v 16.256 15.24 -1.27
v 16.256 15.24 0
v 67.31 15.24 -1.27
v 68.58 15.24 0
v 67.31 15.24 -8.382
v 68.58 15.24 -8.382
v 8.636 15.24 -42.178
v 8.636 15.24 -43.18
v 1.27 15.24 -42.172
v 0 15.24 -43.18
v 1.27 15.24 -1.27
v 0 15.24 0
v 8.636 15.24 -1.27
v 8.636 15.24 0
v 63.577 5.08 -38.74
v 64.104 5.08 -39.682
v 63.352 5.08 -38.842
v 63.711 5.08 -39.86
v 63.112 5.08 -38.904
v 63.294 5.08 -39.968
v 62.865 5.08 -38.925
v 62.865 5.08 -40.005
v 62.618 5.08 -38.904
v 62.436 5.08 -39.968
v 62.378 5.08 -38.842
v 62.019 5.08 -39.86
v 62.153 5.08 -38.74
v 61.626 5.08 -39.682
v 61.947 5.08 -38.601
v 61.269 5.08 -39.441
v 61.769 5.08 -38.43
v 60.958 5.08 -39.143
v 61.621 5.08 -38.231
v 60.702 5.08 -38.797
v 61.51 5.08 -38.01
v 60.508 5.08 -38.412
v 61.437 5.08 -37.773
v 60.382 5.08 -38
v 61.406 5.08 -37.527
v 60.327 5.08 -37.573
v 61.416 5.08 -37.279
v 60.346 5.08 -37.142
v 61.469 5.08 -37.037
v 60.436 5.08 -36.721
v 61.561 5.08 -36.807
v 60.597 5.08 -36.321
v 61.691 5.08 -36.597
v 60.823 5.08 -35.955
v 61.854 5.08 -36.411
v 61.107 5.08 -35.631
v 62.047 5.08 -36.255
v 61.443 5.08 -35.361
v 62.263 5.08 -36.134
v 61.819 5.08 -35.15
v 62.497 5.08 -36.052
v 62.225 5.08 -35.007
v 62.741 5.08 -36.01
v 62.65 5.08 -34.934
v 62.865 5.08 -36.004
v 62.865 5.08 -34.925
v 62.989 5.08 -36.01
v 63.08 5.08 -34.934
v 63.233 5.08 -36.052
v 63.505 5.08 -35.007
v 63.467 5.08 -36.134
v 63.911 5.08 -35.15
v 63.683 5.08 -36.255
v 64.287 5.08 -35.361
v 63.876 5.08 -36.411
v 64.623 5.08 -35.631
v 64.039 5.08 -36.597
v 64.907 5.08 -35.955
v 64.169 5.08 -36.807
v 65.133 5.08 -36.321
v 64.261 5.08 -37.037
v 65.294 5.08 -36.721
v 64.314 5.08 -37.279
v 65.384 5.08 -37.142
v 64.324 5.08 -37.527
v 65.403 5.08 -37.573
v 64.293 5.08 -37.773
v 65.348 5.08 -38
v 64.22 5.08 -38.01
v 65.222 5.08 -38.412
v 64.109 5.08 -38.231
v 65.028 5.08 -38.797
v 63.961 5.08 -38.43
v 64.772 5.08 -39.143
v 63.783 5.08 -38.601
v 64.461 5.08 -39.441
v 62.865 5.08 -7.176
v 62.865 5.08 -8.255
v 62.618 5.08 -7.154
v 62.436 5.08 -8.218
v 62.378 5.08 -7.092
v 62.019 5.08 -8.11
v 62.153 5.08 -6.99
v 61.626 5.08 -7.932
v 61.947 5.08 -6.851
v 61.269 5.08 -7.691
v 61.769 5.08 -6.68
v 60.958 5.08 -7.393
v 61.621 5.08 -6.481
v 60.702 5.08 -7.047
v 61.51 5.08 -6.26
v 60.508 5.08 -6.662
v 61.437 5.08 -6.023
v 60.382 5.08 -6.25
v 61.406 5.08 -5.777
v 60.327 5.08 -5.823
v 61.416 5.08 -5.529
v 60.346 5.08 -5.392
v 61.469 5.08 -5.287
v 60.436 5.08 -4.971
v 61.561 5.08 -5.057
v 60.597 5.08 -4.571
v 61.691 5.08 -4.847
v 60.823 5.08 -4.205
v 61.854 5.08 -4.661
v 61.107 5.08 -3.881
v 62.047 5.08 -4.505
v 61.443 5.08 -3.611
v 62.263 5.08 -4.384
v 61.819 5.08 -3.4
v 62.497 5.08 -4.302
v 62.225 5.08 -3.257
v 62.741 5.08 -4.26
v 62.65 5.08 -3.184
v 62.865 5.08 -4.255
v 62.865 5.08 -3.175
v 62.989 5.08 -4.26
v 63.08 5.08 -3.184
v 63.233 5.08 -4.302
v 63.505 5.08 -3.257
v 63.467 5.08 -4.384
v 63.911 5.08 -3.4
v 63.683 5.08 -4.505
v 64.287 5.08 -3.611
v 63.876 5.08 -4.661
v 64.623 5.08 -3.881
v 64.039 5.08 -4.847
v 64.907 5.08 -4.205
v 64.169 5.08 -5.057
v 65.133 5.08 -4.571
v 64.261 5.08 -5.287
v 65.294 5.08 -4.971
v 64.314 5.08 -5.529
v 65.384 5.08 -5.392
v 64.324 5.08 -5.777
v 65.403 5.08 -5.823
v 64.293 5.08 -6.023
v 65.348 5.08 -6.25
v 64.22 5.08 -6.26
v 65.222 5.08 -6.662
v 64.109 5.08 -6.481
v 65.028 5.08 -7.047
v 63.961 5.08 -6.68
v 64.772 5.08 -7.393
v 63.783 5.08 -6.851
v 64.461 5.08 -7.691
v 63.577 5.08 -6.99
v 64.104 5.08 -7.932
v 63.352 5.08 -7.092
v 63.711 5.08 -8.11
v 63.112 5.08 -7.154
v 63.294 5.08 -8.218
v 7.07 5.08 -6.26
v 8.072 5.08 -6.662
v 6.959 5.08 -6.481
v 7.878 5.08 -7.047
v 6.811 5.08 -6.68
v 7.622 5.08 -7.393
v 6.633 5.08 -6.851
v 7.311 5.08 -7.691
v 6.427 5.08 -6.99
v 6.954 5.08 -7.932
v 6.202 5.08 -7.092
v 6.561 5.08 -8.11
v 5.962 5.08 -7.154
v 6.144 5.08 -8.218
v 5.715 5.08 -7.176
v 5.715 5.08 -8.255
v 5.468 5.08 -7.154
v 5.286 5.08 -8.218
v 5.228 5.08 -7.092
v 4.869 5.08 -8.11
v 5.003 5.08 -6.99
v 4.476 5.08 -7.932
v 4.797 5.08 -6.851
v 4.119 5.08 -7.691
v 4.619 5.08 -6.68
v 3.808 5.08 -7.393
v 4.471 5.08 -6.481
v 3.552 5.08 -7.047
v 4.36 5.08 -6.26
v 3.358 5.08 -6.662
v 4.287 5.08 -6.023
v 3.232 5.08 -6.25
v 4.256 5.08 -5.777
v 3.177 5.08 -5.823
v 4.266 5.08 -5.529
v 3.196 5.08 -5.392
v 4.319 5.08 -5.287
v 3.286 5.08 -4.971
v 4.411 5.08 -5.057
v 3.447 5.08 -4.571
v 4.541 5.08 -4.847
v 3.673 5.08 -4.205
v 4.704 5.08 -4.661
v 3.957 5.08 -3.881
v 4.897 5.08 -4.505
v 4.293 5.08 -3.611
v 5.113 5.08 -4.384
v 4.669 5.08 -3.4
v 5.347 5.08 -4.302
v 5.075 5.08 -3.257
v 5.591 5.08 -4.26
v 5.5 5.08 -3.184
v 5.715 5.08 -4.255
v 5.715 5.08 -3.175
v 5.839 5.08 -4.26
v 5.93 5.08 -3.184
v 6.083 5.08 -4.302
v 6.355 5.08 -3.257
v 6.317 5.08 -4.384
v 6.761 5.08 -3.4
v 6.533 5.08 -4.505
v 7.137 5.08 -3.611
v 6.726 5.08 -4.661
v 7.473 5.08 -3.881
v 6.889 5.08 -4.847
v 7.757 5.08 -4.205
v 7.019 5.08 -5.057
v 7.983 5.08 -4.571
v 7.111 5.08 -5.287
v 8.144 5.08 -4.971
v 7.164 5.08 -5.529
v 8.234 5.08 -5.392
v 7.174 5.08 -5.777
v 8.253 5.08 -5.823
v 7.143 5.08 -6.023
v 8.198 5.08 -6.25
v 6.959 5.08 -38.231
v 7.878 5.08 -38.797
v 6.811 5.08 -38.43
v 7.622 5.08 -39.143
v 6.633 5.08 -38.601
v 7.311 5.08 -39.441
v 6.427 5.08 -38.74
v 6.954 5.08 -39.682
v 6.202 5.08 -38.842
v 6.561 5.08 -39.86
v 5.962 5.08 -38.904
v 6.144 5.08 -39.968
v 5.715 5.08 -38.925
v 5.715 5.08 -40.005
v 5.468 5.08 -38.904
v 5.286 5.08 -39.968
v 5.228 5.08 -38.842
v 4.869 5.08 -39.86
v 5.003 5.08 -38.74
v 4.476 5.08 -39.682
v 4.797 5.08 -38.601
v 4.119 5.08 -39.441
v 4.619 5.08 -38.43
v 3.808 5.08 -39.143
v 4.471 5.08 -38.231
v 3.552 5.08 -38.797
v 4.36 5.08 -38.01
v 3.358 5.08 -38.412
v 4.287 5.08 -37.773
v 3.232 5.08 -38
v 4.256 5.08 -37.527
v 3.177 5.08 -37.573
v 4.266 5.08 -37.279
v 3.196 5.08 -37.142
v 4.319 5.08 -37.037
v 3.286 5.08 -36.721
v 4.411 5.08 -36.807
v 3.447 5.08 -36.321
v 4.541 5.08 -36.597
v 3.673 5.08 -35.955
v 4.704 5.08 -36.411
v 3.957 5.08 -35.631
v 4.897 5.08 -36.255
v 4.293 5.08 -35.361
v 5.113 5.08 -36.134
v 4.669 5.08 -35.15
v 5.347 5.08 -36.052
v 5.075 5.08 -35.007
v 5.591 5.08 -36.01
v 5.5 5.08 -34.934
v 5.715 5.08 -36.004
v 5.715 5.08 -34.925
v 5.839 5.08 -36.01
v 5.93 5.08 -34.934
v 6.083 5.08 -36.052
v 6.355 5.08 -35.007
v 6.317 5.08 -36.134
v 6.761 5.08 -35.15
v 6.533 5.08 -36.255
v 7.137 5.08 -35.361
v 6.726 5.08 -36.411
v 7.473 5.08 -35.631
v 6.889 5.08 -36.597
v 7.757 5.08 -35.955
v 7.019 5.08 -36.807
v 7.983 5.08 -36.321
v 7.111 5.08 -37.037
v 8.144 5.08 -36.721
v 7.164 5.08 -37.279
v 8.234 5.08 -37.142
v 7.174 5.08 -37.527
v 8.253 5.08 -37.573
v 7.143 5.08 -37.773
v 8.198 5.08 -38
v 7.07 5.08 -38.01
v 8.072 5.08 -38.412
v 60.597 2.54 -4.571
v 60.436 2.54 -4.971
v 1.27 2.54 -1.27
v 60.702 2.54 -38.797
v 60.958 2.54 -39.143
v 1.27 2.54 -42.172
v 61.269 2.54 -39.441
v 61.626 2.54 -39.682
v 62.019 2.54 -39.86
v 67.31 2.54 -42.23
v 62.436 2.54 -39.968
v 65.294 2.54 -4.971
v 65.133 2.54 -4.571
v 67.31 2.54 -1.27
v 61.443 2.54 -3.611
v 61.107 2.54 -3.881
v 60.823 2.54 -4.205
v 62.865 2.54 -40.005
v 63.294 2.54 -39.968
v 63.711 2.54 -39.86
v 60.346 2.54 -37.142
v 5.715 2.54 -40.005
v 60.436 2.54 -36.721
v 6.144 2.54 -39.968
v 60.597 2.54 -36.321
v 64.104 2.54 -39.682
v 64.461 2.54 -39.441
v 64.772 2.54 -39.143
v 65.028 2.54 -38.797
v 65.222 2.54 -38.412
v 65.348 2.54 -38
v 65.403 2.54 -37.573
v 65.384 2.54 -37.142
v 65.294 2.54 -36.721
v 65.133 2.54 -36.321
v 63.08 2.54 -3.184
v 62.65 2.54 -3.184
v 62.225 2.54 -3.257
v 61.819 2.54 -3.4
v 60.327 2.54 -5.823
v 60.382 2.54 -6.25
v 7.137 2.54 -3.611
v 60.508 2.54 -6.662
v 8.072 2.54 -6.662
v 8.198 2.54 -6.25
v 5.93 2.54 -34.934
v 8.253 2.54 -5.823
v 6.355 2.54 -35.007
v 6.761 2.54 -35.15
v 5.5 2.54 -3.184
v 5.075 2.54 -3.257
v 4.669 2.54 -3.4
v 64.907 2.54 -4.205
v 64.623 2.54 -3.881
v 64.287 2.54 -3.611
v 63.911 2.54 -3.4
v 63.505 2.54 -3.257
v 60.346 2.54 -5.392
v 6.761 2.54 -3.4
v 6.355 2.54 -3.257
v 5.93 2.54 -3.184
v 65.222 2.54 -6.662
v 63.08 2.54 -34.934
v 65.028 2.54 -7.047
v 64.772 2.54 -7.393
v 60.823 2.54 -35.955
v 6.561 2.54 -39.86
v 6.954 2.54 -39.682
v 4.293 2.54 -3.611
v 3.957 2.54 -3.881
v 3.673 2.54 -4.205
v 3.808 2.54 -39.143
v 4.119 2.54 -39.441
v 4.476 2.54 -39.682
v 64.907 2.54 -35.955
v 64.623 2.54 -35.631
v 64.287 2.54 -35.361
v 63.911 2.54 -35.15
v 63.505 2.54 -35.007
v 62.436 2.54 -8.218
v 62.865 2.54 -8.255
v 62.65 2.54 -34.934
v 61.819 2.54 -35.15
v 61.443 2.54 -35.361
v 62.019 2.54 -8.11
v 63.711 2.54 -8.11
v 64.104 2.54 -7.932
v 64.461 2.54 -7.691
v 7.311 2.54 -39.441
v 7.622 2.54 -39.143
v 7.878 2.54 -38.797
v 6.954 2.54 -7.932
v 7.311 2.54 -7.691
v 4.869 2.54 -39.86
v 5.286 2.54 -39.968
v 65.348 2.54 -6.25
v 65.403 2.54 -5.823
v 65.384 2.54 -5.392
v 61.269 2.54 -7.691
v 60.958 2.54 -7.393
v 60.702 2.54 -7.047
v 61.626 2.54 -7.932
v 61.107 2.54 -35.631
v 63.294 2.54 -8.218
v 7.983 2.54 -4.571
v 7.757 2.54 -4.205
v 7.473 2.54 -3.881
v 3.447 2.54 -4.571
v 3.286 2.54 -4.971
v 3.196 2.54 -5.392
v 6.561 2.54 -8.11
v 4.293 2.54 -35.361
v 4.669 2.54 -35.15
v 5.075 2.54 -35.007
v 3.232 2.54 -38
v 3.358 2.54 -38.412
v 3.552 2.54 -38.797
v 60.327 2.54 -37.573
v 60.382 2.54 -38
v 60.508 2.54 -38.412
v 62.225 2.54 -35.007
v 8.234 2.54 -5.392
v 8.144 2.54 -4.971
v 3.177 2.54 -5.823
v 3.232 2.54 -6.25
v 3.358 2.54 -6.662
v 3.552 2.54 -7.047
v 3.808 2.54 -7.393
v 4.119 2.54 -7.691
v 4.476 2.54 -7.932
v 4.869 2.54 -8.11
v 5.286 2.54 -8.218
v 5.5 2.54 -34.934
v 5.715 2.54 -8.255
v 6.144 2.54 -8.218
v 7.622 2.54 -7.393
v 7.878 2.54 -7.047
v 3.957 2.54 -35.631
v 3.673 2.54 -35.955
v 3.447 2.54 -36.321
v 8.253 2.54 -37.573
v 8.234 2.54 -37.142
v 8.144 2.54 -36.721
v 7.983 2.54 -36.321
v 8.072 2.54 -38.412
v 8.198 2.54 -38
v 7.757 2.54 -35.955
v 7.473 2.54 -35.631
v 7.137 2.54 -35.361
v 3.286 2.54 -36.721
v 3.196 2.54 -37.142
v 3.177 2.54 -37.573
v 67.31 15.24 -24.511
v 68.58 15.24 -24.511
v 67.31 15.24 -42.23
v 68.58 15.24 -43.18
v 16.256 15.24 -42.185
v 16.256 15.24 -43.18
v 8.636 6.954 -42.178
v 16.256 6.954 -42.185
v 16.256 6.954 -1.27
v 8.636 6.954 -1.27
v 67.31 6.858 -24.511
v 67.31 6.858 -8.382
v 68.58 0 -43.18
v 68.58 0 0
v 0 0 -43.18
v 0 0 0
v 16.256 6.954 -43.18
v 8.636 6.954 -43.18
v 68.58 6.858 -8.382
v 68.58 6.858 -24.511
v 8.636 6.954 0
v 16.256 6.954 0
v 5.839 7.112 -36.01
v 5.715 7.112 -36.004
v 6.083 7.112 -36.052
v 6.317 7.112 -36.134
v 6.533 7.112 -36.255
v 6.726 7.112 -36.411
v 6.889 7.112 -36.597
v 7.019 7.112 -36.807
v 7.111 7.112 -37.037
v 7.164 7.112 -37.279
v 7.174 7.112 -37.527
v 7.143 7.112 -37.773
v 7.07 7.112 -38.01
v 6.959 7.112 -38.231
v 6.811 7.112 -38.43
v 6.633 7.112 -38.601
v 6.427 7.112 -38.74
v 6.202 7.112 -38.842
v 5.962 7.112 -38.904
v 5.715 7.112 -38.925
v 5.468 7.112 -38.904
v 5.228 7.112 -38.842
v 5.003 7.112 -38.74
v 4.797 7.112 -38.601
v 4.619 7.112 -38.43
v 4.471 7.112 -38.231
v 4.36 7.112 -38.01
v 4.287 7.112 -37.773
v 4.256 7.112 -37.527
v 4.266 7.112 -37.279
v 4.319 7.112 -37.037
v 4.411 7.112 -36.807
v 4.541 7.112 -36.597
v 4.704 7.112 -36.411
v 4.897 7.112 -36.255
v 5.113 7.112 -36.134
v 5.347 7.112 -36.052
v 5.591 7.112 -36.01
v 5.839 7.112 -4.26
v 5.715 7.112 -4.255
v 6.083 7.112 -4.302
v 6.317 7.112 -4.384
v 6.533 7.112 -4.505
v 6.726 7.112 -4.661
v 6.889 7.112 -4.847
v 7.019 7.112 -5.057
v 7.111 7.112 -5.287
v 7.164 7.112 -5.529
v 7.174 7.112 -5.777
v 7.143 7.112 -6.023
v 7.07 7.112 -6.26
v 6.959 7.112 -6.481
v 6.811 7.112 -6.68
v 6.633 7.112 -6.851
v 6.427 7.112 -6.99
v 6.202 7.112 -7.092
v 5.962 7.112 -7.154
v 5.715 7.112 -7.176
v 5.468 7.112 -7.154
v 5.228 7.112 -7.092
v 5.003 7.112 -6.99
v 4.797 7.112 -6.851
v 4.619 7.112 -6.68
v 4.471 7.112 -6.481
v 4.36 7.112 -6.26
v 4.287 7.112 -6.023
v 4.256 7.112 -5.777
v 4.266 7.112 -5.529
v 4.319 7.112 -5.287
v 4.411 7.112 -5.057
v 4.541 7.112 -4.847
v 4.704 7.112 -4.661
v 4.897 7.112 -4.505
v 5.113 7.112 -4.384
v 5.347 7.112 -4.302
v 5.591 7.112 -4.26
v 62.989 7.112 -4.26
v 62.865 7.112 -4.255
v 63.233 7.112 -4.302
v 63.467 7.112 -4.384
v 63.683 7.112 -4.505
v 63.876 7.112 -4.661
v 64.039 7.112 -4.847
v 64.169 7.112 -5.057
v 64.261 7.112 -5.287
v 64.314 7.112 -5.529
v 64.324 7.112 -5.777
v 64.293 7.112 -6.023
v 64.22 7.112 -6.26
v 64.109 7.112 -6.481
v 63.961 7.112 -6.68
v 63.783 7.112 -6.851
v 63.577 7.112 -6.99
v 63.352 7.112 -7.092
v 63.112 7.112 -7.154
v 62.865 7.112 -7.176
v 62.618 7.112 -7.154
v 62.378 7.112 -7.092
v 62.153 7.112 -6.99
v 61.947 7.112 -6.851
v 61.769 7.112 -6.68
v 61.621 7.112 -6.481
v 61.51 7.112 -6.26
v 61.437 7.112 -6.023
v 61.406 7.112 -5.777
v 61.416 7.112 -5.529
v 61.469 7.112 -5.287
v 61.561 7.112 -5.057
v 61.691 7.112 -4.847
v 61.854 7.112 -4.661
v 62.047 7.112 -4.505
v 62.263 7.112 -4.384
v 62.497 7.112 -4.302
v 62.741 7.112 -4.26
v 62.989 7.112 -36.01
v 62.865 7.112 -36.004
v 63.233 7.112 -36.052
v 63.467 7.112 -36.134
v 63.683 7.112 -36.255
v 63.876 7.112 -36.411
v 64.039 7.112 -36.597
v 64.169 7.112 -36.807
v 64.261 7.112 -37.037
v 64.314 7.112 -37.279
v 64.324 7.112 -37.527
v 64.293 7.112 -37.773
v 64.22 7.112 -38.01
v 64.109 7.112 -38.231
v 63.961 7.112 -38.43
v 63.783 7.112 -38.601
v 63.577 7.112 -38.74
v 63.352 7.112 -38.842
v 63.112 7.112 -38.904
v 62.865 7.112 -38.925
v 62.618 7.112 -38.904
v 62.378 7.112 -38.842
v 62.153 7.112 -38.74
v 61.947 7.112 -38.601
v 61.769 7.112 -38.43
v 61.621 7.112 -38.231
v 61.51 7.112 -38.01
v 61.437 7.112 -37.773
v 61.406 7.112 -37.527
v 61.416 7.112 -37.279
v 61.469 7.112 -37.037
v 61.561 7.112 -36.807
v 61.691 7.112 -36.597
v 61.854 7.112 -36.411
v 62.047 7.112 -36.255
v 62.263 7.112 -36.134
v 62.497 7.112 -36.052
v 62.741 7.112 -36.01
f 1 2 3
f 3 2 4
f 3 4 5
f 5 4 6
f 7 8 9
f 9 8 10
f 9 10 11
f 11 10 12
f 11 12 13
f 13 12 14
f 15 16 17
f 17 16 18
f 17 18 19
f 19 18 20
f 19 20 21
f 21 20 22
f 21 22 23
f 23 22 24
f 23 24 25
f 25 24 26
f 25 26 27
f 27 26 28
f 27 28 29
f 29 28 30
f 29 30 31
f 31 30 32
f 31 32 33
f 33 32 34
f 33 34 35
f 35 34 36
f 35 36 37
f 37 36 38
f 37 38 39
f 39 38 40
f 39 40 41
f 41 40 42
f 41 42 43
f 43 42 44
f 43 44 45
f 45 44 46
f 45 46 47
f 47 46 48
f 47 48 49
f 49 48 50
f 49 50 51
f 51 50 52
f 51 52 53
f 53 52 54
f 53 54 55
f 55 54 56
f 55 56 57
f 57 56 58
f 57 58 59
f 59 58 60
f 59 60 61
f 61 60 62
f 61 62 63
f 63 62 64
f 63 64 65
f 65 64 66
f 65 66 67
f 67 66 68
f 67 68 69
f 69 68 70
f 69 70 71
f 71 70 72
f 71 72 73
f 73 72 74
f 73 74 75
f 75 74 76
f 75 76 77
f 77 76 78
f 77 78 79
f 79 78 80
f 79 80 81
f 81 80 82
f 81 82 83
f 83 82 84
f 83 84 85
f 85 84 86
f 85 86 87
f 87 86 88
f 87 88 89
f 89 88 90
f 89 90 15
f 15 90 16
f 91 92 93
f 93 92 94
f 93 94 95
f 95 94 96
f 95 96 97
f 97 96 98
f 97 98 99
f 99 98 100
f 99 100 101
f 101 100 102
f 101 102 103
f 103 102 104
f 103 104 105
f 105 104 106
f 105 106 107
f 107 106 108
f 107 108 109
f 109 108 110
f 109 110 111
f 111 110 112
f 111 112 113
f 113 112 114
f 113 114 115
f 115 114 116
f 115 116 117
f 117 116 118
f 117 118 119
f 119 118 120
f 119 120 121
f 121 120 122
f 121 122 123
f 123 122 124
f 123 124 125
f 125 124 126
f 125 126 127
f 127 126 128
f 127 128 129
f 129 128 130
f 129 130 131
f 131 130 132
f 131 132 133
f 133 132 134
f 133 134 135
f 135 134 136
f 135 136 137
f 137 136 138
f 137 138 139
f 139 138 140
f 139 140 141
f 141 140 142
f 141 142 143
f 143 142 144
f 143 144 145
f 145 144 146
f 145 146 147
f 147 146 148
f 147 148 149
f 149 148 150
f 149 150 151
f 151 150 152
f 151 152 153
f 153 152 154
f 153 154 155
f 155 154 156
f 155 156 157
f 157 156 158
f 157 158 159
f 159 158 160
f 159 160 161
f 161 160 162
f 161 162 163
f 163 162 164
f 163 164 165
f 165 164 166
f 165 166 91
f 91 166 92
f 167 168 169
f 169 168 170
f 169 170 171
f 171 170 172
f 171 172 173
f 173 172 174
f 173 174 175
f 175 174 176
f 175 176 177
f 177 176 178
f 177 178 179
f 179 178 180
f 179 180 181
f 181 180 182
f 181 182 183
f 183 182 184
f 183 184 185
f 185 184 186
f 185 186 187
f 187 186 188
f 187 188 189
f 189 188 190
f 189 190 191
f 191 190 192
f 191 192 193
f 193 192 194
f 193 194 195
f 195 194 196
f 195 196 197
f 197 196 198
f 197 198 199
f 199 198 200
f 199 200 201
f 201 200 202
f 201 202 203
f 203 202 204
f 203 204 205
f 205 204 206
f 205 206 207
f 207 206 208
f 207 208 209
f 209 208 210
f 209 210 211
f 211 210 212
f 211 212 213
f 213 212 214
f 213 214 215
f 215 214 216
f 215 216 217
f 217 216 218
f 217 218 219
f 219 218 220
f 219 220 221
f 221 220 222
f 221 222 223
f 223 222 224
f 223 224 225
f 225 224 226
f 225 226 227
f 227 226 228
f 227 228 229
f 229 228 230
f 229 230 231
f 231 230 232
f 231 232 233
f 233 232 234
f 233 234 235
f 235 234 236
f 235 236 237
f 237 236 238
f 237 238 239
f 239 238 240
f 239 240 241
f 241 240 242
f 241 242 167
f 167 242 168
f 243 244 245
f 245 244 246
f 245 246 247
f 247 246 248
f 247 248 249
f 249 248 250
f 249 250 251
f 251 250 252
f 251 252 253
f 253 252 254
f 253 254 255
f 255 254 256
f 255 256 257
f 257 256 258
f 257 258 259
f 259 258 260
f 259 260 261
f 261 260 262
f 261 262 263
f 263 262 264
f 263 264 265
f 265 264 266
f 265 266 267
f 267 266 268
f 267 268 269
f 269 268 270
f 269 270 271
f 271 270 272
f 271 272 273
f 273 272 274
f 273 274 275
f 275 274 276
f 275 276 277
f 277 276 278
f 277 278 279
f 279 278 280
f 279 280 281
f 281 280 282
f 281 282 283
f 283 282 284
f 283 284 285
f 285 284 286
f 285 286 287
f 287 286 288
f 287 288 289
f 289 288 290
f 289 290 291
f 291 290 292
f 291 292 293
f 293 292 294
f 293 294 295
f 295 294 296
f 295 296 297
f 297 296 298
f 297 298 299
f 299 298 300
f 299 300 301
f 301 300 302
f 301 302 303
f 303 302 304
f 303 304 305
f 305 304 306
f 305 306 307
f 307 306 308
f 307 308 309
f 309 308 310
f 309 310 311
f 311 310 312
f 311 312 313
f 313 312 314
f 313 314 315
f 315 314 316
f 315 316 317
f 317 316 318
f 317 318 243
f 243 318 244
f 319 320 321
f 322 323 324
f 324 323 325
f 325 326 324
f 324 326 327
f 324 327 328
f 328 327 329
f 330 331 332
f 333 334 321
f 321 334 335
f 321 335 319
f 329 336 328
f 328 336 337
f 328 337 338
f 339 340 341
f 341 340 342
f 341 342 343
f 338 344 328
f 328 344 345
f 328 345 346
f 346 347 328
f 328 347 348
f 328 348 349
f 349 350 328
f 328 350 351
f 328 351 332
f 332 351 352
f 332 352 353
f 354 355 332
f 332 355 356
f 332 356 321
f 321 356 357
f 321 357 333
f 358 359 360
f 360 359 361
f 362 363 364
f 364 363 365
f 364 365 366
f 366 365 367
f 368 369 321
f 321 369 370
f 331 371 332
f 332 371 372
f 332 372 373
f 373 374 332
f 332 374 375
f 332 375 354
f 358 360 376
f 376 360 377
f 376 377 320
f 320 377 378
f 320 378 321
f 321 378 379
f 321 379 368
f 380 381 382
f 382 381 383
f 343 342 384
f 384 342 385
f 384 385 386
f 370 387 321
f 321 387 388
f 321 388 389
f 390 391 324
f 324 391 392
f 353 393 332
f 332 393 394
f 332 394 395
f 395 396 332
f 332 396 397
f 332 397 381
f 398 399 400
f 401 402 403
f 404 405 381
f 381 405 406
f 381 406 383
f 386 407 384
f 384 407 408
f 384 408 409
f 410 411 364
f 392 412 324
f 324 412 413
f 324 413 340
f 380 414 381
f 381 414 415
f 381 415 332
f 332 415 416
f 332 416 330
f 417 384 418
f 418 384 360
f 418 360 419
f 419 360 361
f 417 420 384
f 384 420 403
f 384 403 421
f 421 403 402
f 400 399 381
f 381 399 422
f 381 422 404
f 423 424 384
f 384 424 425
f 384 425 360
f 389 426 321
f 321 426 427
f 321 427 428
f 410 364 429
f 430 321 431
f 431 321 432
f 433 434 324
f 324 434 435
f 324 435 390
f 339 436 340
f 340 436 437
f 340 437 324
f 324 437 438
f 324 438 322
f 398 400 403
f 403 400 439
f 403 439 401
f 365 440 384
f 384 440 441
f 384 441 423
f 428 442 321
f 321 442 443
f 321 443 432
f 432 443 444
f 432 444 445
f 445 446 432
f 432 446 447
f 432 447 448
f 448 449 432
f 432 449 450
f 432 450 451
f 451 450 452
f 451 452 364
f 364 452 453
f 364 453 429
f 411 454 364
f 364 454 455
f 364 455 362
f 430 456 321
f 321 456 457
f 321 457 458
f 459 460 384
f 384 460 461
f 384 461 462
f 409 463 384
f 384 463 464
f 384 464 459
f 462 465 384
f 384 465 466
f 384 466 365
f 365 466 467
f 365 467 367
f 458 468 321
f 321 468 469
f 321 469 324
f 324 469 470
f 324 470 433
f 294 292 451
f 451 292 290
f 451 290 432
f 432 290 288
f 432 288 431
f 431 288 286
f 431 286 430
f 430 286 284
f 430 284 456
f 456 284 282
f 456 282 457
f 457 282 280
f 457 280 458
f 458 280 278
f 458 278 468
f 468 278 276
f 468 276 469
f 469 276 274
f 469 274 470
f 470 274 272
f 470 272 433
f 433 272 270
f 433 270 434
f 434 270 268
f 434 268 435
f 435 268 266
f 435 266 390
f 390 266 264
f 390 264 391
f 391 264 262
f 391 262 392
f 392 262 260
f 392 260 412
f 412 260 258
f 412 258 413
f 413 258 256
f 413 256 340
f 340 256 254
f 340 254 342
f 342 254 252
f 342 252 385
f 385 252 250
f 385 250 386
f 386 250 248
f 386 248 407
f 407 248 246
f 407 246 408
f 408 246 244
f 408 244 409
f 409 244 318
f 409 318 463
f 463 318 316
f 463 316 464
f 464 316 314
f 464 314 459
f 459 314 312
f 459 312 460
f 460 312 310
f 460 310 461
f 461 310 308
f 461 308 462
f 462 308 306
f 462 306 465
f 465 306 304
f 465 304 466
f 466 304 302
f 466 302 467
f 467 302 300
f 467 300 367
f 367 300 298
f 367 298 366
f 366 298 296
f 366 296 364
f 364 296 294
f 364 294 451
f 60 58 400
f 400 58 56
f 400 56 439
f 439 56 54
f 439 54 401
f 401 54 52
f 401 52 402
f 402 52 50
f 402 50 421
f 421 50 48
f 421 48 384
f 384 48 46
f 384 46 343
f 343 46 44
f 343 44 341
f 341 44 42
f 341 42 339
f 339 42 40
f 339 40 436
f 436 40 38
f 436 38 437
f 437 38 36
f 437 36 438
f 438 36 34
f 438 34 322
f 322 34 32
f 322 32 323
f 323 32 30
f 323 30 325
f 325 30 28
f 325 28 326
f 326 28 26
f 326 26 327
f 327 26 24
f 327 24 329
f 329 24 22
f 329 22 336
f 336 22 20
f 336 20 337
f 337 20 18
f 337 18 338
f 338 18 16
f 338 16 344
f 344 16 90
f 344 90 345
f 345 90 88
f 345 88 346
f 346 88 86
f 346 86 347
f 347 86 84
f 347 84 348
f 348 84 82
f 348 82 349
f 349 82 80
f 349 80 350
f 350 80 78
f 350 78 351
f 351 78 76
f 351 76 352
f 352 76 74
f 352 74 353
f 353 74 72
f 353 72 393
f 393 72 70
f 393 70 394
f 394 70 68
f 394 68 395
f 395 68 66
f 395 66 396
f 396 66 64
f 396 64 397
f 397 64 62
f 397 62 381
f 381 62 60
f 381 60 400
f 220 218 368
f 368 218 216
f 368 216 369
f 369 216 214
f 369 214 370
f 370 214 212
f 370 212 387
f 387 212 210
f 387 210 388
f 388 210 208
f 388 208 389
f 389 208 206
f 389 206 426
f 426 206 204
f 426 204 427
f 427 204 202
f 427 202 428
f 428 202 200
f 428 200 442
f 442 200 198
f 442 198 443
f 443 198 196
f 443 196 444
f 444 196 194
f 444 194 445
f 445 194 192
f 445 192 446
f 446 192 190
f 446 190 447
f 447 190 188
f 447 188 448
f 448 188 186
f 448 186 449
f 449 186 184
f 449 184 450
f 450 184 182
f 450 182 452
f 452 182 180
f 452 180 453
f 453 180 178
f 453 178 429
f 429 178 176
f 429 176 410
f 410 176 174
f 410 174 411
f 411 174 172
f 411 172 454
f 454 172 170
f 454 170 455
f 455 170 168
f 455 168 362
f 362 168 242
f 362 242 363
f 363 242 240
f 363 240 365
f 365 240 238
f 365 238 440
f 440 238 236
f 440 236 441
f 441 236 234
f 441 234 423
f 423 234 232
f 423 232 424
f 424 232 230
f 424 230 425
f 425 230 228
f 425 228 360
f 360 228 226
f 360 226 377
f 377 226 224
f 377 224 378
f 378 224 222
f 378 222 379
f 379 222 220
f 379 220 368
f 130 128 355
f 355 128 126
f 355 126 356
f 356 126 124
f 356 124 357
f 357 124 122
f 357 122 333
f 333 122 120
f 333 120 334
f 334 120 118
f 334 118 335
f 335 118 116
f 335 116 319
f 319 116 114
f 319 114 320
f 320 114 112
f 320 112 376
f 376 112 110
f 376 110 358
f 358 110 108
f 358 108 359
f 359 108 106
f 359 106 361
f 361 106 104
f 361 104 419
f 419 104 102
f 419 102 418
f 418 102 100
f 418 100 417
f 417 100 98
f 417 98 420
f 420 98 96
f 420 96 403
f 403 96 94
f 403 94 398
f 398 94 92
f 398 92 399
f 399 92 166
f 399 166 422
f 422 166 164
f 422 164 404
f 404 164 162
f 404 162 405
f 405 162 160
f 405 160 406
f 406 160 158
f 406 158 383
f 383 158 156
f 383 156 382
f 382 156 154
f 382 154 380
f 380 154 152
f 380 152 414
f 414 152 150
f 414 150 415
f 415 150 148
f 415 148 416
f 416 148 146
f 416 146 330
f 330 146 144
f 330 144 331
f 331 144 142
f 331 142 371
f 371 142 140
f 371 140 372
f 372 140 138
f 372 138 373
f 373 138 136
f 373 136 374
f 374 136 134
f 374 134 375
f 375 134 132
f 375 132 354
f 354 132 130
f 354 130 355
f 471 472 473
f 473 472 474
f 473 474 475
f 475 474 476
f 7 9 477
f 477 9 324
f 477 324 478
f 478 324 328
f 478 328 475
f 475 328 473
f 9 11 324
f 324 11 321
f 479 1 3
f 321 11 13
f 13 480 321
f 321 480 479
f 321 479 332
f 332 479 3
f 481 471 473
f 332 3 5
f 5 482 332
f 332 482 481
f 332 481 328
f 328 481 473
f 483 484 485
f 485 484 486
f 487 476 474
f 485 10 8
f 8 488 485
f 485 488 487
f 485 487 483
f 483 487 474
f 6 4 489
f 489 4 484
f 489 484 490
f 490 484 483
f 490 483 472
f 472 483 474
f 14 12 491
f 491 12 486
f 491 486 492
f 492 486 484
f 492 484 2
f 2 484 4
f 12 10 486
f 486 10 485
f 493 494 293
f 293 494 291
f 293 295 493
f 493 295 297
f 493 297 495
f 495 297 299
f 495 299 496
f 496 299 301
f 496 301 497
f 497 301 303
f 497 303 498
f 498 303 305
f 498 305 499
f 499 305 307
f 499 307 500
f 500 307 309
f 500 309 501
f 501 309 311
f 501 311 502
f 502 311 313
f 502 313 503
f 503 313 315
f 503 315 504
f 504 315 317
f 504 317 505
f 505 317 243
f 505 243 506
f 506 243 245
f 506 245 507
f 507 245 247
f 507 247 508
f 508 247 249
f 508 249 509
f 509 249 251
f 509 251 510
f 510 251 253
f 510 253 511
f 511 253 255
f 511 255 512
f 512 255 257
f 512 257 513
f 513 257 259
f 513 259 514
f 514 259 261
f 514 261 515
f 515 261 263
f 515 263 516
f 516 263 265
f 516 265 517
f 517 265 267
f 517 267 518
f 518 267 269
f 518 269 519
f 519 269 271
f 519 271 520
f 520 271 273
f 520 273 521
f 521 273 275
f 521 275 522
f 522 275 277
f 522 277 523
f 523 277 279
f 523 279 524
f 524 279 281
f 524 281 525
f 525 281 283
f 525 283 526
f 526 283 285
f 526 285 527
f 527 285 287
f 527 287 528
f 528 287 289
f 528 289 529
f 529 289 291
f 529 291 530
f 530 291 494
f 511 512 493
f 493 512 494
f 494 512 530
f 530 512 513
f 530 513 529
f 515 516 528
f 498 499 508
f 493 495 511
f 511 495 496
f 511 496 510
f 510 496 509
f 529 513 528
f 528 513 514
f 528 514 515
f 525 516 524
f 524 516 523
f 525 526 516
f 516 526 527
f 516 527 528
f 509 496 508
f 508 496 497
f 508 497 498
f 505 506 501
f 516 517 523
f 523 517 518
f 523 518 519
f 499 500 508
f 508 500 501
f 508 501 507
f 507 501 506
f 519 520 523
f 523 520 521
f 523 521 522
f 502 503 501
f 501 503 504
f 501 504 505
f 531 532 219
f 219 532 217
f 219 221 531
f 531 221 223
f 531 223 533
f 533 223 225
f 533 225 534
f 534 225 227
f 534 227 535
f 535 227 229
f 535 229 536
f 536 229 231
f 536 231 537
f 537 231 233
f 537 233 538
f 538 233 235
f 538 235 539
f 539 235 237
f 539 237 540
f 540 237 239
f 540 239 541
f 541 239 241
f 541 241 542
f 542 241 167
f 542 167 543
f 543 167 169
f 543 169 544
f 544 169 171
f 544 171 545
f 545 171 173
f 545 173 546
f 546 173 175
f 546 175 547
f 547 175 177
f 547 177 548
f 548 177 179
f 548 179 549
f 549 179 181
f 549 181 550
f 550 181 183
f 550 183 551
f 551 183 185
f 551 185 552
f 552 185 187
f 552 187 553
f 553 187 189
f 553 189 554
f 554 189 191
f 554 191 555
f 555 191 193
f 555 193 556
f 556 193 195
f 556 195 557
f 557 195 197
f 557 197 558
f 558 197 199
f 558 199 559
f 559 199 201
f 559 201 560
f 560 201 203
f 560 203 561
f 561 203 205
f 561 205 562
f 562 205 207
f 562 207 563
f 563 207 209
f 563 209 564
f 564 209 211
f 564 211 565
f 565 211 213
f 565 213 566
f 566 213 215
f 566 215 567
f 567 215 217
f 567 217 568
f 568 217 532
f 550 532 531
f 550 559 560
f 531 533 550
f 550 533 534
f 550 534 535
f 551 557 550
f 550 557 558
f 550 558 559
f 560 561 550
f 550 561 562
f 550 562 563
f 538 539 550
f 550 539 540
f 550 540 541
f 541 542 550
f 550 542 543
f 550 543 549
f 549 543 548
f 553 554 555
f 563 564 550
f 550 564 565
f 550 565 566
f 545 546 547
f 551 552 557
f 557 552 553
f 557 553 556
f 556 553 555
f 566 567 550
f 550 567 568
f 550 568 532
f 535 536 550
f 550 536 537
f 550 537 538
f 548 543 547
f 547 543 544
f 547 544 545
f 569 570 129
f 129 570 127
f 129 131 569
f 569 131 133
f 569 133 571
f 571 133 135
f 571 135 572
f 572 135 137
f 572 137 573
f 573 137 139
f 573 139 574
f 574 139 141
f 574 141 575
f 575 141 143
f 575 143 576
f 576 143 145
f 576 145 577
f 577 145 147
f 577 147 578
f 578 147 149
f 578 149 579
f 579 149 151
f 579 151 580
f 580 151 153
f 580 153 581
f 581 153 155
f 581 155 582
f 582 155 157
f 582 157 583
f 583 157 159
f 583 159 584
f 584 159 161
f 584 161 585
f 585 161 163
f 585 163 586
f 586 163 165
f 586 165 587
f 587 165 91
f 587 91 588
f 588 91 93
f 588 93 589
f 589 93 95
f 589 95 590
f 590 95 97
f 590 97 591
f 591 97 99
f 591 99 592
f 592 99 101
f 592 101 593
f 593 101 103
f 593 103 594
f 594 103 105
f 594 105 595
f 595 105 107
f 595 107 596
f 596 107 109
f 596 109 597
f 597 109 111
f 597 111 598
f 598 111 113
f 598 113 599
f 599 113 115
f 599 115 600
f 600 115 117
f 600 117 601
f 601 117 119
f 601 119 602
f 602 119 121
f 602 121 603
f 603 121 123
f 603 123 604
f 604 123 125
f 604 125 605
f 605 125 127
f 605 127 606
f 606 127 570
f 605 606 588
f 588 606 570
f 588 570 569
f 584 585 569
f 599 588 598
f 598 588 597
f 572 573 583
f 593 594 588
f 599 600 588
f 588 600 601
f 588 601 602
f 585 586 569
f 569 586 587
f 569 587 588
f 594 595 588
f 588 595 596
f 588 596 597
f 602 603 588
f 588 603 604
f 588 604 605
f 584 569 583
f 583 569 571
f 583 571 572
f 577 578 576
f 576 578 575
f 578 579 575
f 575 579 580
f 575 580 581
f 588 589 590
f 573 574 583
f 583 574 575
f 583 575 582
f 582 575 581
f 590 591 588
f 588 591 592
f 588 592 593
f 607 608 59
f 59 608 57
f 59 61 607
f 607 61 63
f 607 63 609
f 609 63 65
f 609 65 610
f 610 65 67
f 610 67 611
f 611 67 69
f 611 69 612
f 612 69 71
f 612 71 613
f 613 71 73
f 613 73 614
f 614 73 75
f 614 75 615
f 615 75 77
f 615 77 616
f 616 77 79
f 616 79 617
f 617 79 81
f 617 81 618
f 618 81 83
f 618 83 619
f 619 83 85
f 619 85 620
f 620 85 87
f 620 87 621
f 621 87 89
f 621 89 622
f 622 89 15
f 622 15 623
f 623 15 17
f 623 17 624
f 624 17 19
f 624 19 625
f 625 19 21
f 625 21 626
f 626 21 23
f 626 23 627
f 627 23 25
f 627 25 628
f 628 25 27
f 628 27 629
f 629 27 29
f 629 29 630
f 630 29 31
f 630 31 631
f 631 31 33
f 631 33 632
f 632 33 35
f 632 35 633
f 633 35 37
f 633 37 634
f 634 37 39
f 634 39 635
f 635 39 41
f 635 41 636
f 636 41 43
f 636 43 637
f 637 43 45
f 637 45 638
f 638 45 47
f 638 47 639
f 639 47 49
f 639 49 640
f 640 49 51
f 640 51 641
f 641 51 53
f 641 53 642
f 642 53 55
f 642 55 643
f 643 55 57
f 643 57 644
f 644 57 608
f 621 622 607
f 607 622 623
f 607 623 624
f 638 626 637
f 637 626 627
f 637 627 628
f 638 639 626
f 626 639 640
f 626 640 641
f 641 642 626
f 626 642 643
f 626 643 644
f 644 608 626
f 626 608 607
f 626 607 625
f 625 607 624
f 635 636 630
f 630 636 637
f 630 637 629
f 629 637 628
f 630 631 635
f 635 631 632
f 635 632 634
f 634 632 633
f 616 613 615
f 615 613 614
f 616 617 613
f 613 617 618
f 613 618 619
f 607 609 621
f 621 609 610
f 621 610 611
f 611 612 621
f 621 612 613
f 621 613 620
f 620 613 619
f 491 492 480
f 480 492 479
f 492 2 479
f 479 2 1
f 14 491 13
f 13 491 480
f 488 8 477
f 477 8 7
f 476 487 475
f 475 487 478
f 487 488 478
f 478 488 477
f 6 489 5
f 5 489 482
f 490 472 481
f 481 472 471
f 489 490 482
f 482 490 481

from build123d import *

# Parameters (mm, degrees)
SKETCH1_W           = 68.58
SKETCH1_H           = 43.18
BOSS_EXTRUDE1_DEPTH = 2.54
SKETCH5_R           = 2.54
BOSS_EXTRUDE2_DEPTH = 2.54
SKETCH6_W           = 68.58
SKETCH6_H           = 43.18
BOSS_EXTRUDE3_DEPTH = 12.7
SKETCH7_R           = 1.4605
BOSS_EXTRUDE4_DEPTH = 2.032
SKETCH8_W           = 7.62
SKETCH8_H           = 8.2856324
CUT_EXTRUDE1_DEPTH  = 83.46203005
SKETCH9_W           = 16.129
SKETCH9_H           = 8.382
CUT_EXTRUDE2_DEPTH  = 2.032


with BuildPart() as part:
    # Sketch1 → Boss-Extrude1 (new body)
    with BuildSketch(Plane(origin=(0, 0, 0), x_dir=(1, 0, 0), z_dir=(0, 1, 0))):
        with Locations((34.29, 21.59)):
            Rectangle(SKETCH1_W, SKETCH1_H)
    extrude(amount=BOSS_EXTRUDE1_DEPTH)

    # Sketch5 → Boss-Extrude2 (add)
    with BuildSketch(Plane(origin=(0, 2.54, 0), x_dir=(1, 0, 0), z_dir=(0, 1, 0))):
        with Locations(Location((5.715, 37.465, 0), (0, 0, 90))):
            Circle(SKETCH5_R)
        with Locations(Location((62.865, 37.465, 0), (0, 0, 90))):
            Circle(SKETCH5_R)
        with Locations(Location((5.715, 5.715, 0), (0, 0, 90))):
            Circle(SKETCH5_R)
        with Locations(Location((62.865, 5.715, 0), (0, 0, 90))):
            Circle(SKETCH5_R)
    extrude(amount=BOSS_EXTRUDE2_DEPTH)

    # Sketch6 → Boss-Extrude3 (add)
    with BuildSketch(Plane(origin=(0, 2.54, 0), x_dir=(1, 0, 0), z_dir=(0, 1, 0))):
        with Locations((34.29, 21.59)):
            Rectangle(SKETCH6_W, SKETCH6_H)
        Polygon((1.27, 42.171922196), (1.27, 1.27), (67.31, 1.27), (67.31, 42.229552983), align=None, mode=Mode.SUBTRACT)
    extrude(amount=BOSS_EXTRUDE3_DEPTH)

    # Sketch7 → Boss-Extrude4 (add)
    with BuildSketch(Plane(origin=(0, 5.08, 0), x_dir=(1, 0, 0), z_dir=(0, 1, 0))):
        with Locations(Location((5.715, 37.465, 0), (0, 0, 270))):
            Circle(SKETCH7_R)
        with Locations(Location((5.715, 5.715, 0), (0, 0, 270))):
            Circle(SKETCH7_R)
        with Locations(Location((62.865, 5.715, 0), (0, 0, 270))):
            Circle(SKETCH7_R)
        with Locations(Location((62.865, 37.465, 0), (0, 0, 270))):
            Circle(SKETCH7_R)
    extrude(amount=BOSS_EXTRUDE4_DEPTH)

    # Sketch8 → Cut-Extrude1 (cut, through all)
    with BuildSketch(Plane.XY):
        with Locations((12.446, 11.0971838)):
            Rectangle(SKETCH8_W, SKETCH8_H)
    extrude(amount=-CUT_EXTRUDE1_DEPTH, mode=Mode.SUBTRACT)

    # Sketch9 → Cut-Extrude2 (cut)
    with BuildSketch(Plane(origin=(68.58, 0, 0), x_dir=(0, 0, -1), z_dir=(1, 0, 0))):
        with Locations((16.4465, 11.049)):
            Rectangle(SKETCH9_W, SKETCH9_H)
    extrude(amount=-CUT_EXTRUDE2_DEPTH, mode=Mode.SUBTRACT)


solid = part.part
